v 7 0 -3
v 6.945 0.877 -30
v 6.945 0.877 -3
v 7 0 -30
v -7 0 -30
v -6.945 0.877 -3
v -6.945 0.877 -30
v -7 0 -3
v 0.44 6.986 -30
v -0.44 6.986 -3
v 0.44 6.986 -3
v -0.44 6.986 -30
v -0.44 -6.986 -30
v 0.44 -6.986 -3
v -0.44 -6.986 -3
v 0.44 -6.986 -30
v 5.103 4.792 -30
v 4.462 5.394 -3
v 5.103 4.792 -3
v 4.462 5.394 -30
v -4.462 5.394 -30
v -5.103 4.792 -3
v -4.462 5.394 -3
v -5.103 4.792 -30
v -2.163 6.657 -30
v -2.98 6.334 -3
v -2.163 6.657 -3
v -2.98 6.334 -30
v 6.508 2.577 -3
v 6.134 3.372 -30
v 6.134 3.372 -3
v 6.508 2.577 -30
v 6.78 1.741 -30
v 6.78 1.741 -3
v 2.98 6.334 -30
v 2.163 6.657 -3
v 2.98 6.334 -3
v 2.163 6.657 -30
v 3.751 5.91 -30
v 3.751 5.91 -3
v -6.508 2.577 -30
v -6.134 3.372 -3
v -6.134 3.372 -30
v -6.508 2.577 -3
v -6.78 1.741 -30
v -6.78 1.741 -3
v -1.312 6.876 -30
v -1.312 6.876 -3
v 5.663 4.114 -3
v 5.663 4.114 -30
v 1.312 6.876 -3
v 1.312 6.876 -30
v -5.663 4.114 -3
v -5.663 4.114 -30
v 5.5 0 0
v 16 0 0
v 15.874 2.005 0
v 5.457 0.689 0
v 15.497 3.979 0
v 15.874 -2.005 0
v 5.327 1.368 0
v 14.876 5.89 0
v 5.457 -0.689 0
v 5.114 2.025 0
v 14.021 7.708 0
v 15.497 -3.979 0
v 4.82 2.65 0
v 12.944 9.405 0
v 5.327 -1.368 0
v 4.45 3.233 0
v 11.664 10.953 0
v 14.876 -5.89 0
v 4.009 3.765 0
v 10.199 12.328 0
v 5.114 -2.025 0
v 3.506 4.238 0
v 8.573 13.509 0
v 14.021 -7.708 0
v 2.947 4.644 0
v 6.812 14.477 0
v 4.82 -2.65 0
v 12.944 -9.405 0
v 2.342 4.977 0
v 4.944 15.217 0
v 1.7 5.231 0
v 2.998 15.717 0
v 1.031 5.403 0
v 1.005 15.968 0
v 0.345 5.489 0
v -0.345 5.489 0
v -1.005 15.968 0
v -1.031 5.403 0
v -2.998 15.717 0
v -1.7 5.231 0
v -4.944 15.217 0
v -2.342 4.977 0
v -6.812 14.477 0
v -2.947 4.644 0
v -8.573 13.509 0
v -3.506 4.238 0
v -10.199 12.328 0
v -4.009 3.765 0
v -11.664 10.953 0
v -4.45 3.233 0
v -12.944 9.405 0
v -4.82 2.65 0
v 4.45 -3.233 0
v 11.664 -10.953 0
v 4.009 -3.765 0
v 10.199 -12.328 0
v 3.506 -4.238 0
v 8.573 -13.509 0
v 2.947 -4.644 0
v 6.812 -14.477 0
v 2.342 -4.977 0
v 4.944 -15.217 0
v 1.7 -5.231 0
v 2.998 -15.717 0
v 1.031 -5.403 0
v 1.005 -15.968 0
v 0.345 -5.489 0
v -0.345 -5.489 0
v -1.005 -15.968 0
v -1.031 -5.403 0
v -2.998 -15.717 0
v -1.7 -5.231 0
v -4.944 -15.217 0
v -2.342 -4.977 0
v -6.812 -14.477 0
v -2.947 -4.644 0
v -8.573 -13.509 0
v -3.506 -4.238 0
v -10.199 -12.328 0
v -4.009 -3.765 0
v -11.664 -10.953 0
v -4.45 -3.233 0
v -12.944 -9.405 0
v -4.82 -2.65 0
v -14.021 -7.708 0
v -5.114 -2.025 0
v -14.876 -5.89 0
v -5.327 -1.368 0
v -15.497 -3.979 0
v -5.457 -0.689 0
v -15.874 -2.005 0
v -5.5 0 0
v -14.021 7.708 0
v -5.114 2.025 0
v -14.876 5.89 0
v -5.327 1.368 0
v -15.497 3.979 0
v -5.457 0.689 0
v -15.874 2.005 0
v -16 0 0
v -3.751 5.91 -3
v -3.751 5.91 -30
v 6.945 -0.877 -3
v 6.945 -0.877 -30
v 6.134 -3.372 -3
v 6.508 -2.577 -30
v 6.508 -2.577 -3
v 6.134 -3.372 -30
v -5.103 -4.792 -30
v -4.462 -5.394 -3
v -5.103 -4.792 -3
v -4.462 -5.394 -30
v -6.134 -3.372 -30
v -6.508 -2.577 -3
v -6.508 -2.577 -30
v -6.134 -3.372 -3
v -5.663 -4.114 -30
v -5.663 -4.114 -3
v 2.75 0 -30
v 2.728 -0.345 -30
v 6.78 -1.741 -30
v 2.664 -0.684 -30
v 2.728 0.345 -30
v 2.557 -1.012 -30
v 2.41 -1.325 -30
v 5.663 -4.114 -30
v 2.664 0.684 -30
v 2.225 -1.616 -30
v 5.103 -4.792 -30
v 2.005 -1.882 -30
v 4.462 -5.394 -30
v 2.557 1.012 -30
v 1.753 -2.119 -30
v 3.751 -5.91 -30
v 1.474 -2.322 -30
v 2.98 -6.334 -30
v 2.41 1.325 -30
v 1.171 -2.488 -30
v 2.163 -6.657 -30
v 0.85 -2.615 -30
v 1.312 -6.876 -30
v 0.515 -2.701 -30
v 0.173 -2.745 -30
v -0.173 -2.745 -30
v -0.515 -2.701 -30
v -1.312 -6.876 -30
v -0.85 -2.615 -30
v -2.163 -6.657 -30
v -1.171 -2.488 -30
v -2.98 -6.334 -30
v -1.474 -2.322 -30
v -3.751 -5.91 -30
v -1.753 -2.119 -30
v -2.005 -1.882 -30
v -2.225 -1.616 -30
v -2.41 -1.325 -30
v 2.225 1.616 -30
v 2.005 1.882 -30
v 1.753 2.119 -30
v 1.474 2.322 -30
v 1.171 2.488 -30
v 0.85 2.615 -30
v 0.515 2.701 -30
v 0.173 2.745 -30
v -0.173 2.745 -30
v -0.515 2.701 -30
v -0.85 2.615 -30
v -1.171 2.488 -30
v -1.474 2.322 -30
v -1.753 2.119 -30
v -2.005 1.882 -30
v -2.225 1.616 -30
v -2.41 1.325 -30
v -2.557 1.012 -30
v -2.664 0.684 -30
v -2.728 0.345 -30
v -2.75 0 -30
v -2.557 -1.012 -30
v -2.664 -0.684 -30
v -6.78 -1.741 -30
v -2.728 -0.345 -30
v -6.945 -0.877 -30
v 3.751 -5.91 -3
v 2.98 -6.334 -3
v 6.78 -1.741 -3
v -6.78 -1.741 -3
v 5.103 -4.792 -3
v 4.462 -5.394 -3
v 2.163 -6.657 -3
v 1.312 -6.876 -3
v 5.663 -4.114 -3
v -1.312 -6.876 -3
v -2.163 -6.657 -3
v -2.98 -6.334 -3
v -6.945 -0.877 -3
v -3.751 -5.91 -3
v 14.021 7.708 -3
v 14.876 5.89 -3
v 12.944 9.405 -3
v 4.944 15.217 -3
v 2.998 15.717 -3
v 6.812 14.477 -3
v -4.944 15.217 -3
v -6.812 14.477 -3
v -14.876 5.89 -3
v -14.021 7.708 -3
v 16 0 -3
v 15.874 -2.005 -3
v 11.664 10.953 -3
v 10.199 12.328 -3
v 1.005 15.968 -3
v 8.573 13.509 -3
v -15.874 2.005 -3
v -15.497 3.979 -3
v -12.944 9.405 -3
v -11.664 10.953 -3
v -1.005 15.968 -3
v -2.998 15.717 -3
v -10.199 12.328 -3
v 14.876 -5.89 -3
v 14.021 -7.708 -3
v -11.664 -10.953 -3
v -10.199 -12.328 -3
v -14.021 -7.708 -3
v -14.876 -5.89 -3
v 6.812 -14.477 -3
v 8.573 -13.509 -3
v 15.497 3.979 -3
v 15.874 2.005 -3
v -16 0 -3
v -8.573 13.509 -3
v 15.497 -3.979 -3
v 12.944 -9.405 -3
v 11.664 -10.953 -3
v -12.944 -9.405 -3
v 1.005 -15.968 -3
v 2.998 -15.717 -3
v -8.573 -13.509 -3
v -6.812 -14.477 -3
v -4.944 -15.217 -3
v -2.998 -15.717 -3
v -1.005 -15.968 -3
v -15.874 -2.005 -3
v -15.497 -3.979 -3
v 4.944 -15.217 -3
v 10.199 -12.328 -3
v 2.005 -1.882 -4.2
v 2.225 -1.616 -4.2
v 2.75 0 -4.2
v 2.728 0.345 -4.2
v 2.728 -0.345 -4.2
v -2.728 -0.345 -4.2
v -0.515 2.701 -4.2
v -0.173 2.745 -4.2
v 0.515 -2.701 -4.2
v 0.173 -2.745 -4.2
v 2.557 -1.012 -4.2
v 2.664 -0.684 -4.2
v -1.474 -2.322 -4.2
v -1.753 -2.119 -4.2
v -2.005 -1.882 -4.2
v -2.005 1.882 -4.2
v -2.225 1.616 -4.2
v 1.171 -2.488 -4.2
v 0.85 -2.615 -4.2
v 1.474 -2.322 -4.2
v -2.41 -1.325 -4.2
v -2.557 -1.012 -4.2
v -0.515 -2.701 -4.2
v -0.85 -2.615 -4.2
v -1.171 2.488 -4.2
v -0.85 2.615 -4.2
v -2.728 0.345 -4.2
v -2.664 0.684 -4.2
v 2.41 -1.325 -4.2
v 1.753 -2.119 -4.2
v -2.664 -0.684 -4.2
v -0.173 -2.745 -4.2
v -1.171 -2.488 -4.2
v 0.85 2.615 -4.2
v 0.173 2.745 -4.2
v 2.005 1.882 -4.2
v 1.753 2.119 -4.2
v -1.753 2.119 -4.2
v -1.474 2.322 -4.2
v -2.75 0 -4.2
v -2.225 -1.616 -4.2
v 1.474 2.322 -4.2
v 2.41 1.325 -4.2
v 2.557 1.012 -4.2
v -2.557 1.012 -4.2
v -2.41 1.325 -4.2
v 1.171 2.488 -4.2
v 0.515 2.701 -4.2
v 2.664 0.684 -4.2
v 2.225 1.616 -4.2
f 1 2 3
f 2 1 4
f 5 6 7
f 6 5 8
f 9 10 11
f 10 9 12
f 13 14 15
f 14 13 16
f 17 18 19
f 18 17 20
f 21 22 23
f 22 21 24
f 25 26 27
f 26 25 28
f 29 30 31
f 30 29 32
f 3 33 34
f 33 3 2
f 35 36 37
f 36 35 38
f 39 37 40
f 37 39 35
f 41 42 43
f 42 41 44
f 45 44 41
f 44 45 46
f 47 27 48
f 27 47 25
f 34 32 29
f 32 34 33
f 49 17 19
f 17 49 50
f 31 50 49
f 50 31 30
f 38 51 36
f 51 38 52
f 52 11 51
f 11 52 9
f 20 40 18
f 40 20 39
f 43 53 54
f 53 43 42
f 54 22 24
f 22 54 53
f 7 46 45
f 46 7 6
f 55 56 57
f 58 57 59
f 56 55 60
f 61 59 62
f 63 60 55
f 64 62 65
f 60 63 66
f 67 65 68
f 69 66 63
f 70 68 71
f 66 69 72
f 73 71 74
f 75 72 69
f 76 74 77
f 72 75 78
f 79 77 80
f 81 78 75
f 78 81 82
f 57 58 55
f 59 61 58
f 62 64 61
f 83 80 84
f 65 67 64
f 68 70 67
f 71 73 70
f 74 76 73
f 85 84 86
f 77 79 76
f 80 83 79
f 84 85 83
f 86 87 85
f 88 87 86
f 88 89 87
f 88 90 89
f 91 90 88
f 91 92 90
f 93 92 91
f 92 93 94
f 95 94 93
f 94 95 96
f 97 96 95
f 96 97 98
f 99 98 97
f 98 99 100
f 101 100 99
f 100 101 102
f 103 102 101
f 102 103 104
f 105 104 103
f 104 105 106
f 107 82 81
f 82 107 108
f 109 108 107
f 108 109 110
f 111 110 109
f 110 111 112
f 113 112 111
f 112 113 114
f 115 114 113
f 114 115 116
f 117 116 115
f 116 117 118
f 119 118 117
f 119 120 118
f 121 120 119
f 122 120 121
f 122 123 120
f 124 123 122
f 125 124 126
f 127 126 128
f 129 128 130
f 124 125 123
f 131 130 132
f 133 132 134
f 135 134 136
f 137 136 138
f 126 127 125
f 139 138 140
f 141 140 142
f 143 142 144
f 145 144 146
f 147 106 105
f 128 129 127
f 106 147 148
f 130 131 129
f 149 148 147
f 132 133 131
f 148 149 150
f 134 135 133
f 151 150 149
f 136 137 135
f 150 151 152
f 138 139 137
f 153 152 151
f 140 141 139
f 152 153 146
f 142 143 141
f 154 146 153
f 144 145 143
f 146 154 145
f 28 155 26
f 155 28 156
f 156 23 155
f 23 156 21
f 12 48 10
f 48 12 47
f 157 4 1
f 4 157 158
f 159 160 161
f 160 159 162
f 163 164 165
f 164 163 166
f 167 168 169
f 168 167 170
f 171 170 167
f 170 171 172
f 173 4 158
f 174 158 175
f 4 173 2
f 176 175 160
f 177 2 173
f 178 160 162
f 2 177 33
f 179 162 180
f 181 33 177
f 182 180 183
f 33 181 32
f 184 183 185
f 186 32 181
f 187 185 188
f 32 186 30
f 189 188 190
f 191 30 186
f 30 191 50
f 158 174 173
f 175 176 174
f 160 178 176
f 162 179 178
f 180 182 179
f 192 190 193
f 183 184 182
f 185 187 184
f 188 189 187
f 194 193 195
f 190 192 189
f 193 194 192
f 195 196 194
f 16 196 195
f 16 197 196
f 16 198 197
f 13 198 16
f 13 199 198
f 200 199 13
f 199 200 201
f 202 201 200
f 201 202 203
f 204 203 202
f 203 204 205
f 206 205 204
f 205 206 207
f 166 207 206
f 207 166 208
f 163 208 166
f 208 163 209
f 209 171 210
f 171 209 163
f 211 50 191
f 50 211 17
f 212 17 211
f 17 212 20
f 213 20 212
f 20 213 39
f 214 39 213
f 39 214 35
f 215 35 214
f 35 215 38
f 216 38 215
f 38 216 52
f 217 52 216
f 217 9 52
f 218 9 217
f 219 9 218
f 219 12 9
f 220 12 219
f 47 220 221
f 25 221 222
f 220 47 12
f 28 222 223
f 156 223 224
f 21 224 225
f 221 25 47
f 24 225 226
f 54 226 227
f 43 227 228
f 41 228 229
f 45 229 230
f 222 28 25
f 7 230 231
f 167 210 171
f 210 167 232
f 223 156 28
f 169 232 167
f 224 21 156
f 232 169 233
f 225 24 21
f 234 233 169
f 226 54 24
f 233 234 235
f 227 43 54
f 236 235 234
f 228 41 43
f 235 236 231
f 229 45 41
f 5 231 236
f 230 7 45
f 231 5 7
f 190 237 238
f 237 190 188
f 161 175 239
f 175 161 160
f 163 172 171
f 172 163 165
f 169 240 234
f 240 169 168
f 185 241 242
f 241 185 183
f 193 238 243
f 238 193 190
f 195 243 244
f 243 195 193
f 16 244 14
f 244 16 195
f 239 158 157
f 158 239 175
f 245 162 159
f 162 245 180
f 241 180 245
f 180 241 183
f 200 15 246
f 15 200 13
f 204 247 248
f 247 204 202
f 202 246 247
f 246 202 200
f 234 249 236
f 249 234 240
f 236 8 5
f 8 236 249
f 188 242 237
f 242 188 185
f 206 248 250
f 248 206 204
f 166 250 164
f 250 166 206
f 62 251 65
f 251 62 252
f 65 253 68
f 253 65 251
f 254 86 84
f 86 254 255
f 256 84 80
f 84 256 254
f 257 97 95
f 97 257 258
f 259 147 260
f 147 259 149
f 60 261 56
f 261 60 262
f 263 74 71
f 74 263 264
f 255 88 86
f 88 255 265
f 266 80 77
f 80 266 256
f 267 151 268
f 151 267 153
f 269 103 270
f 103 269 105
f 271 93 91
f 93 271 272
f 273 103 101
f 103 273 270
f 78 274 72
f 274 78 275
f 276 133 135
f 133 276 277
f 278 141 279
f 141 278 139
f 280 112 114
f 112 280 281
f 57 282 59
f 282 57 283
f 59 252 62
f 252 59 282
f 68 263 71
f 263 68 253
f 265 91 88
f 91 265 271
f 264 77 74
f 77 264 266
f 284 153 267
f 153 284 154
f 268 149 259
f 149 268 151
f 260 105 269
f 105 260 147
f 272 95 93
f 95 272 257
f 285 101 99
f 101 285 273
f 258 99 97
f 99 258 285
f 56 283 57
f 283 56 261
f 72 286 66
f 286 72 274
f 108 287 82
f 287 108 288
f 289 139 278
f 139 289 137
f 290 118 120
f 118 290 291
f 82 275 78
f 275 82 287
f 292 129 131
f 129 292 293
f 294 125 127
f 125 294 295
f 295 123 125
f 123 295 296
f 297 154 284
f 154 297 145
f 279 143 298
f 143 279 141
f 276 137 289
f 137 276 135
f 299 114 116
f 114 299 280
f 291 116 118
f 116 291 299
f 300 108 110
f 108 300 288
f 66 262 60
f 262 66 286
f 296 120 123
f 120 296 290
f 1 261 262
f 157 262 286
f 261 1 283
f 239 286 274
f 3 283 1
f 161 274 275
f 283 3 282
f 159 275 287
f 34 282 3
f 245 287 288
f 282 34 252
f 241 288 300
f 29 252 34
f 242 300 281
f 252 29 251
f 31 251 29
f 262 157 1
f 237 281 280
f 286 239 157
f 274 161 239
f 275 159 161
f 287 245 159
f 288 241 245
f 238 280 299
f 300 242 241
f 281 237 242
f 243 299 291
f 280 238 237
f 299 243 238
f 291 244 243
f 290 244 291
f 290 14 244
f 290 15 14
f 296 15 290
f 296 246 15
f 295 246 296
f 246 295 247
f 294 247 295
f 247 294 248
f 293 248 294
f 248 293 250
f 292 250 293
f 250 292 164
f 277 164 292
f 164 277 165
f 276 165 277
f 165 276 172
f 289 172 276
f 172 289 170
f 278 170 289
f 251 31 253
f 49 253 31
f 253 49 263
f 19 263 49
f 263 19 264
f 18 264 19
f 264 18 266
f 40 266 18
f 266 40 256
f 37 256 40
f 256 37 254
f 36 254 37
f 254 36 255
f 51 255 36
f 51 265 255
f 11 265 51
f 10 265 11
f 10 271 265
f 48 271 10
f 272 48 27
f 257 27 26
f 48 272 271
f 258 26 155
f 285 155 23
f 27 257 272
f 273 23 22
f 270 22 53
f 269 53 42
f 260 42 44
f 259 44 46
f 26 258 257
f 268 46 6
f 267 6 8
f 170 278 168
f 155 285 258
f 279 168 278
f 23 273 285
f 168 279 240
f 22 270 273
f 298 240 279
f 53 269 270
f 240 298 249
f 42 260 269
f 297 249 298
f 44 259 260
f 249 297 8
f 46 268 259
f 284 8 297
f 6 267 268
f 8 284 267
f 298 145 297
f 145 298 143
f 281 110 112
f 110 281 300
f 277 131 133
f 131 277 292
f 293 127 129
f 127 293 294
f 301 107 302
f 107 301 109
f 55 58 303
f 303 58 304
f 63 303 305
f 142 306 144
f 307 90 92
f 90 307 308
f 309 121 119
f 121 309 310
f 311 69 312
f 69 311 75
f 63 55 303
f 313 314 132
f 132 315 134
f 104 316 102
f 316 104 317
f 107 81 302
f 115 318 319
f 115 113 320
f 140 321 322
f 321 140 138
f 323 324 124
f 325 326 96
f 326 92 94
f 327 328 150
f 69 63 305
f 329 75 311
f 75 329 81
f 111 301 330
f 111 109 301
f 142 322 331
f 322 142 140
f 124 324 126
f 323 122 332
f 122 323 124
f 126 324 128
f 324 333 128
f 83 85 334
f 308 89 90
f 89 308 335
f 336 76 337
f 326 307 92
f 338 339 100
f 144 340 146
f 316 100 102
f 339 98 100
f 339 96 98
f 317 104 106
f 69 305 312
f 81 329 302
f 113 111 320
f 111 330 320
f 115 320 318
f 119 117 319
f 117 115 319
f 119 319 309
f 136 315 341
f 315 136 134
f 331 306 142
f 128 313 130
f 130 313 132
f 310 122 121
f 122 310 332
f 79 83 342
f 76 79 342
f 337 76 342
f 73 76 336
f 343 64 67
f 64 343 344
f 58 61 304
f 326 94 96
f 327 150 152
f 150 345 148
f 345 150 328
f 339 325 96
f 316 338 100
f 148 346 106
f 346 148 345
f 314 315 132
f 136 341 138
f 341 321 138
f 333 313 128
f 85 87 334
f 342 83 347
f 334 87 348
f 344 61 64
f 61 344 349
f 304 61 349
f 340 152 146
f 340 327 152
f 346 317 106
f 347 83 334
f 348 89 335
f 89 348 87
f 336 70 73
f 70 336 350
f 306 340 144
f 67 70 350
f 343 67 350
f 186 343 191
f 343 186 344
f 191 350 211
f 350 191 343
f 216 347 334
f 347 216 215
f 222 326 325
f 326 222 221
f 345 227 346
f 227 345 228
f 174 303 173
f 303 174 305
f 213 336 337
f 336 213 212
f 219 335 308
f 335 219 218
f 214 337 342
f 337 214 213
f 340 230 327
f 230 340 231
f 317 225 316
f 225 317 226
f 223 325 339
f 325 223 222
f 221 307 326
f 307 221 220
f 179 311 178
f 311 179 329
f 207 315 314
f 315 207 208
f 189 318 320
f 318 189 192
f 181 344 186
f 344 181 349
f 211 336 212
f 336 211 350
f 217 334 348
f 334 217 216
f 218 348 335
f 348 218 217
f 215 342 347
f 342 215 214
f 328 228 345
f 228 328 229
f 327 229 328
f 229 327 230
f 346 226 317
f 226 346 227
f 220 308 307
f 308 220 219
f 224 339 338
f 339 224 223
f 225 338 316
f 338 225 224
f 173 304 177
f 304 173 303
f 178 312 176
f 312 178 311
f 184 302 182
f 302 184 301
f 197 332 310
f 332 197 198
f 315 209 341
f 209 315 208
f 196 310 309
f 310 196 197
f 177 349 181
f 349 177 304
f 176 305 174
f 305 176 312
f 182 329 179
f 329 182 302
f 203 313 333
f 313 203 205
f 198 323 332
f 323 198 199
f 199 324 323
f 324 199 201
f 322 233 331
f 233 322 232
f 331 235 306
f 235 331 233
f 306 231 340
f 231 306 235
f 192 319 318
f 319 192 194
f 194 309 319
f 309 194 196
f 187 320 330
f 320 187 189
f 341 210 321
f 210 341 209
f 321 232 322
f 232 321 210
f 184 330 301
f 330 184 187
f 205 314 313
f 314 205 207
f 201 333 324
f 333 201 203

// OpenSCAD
$fn = 50;


difference() {
	union() {
		translate(v = [0, 0, -30.0000000000]) {
			cylinder(h = 30, r = 7.0000000000);
		}
		translate(v = [0, 0, -3.0000000000]) {
			cylinder(h = 3, r = 16.0000000000);
		}
	}
	union() {
		translate(v = [0, 0, 0]) {
			rotate(a = [0, 0, 0]) {
				difference() {
					union() {
						#translate(v = [0, 0, -30.0000000000]) {
							cylinder(h = 30, r = 2.2500000000);
						}
						#translate(v = [0, 0, -4.2000000000]) {
							cylinder(h = 4.2000000000, r = 7.0000000000, r1 = 2.7500000000, r2 = 5.5000000000);
						}
						#translate(v = [0, 0, -30.0000000000]) {
							cylinder(h = 30, r = 2.7500000000);
						}
						#translate(v = [0, 0, -30.0000000000]) {
							cylinder(h = 30, r = 2.2500000000);
						}
					}
					union();
				}
			}
		}
	}
}
